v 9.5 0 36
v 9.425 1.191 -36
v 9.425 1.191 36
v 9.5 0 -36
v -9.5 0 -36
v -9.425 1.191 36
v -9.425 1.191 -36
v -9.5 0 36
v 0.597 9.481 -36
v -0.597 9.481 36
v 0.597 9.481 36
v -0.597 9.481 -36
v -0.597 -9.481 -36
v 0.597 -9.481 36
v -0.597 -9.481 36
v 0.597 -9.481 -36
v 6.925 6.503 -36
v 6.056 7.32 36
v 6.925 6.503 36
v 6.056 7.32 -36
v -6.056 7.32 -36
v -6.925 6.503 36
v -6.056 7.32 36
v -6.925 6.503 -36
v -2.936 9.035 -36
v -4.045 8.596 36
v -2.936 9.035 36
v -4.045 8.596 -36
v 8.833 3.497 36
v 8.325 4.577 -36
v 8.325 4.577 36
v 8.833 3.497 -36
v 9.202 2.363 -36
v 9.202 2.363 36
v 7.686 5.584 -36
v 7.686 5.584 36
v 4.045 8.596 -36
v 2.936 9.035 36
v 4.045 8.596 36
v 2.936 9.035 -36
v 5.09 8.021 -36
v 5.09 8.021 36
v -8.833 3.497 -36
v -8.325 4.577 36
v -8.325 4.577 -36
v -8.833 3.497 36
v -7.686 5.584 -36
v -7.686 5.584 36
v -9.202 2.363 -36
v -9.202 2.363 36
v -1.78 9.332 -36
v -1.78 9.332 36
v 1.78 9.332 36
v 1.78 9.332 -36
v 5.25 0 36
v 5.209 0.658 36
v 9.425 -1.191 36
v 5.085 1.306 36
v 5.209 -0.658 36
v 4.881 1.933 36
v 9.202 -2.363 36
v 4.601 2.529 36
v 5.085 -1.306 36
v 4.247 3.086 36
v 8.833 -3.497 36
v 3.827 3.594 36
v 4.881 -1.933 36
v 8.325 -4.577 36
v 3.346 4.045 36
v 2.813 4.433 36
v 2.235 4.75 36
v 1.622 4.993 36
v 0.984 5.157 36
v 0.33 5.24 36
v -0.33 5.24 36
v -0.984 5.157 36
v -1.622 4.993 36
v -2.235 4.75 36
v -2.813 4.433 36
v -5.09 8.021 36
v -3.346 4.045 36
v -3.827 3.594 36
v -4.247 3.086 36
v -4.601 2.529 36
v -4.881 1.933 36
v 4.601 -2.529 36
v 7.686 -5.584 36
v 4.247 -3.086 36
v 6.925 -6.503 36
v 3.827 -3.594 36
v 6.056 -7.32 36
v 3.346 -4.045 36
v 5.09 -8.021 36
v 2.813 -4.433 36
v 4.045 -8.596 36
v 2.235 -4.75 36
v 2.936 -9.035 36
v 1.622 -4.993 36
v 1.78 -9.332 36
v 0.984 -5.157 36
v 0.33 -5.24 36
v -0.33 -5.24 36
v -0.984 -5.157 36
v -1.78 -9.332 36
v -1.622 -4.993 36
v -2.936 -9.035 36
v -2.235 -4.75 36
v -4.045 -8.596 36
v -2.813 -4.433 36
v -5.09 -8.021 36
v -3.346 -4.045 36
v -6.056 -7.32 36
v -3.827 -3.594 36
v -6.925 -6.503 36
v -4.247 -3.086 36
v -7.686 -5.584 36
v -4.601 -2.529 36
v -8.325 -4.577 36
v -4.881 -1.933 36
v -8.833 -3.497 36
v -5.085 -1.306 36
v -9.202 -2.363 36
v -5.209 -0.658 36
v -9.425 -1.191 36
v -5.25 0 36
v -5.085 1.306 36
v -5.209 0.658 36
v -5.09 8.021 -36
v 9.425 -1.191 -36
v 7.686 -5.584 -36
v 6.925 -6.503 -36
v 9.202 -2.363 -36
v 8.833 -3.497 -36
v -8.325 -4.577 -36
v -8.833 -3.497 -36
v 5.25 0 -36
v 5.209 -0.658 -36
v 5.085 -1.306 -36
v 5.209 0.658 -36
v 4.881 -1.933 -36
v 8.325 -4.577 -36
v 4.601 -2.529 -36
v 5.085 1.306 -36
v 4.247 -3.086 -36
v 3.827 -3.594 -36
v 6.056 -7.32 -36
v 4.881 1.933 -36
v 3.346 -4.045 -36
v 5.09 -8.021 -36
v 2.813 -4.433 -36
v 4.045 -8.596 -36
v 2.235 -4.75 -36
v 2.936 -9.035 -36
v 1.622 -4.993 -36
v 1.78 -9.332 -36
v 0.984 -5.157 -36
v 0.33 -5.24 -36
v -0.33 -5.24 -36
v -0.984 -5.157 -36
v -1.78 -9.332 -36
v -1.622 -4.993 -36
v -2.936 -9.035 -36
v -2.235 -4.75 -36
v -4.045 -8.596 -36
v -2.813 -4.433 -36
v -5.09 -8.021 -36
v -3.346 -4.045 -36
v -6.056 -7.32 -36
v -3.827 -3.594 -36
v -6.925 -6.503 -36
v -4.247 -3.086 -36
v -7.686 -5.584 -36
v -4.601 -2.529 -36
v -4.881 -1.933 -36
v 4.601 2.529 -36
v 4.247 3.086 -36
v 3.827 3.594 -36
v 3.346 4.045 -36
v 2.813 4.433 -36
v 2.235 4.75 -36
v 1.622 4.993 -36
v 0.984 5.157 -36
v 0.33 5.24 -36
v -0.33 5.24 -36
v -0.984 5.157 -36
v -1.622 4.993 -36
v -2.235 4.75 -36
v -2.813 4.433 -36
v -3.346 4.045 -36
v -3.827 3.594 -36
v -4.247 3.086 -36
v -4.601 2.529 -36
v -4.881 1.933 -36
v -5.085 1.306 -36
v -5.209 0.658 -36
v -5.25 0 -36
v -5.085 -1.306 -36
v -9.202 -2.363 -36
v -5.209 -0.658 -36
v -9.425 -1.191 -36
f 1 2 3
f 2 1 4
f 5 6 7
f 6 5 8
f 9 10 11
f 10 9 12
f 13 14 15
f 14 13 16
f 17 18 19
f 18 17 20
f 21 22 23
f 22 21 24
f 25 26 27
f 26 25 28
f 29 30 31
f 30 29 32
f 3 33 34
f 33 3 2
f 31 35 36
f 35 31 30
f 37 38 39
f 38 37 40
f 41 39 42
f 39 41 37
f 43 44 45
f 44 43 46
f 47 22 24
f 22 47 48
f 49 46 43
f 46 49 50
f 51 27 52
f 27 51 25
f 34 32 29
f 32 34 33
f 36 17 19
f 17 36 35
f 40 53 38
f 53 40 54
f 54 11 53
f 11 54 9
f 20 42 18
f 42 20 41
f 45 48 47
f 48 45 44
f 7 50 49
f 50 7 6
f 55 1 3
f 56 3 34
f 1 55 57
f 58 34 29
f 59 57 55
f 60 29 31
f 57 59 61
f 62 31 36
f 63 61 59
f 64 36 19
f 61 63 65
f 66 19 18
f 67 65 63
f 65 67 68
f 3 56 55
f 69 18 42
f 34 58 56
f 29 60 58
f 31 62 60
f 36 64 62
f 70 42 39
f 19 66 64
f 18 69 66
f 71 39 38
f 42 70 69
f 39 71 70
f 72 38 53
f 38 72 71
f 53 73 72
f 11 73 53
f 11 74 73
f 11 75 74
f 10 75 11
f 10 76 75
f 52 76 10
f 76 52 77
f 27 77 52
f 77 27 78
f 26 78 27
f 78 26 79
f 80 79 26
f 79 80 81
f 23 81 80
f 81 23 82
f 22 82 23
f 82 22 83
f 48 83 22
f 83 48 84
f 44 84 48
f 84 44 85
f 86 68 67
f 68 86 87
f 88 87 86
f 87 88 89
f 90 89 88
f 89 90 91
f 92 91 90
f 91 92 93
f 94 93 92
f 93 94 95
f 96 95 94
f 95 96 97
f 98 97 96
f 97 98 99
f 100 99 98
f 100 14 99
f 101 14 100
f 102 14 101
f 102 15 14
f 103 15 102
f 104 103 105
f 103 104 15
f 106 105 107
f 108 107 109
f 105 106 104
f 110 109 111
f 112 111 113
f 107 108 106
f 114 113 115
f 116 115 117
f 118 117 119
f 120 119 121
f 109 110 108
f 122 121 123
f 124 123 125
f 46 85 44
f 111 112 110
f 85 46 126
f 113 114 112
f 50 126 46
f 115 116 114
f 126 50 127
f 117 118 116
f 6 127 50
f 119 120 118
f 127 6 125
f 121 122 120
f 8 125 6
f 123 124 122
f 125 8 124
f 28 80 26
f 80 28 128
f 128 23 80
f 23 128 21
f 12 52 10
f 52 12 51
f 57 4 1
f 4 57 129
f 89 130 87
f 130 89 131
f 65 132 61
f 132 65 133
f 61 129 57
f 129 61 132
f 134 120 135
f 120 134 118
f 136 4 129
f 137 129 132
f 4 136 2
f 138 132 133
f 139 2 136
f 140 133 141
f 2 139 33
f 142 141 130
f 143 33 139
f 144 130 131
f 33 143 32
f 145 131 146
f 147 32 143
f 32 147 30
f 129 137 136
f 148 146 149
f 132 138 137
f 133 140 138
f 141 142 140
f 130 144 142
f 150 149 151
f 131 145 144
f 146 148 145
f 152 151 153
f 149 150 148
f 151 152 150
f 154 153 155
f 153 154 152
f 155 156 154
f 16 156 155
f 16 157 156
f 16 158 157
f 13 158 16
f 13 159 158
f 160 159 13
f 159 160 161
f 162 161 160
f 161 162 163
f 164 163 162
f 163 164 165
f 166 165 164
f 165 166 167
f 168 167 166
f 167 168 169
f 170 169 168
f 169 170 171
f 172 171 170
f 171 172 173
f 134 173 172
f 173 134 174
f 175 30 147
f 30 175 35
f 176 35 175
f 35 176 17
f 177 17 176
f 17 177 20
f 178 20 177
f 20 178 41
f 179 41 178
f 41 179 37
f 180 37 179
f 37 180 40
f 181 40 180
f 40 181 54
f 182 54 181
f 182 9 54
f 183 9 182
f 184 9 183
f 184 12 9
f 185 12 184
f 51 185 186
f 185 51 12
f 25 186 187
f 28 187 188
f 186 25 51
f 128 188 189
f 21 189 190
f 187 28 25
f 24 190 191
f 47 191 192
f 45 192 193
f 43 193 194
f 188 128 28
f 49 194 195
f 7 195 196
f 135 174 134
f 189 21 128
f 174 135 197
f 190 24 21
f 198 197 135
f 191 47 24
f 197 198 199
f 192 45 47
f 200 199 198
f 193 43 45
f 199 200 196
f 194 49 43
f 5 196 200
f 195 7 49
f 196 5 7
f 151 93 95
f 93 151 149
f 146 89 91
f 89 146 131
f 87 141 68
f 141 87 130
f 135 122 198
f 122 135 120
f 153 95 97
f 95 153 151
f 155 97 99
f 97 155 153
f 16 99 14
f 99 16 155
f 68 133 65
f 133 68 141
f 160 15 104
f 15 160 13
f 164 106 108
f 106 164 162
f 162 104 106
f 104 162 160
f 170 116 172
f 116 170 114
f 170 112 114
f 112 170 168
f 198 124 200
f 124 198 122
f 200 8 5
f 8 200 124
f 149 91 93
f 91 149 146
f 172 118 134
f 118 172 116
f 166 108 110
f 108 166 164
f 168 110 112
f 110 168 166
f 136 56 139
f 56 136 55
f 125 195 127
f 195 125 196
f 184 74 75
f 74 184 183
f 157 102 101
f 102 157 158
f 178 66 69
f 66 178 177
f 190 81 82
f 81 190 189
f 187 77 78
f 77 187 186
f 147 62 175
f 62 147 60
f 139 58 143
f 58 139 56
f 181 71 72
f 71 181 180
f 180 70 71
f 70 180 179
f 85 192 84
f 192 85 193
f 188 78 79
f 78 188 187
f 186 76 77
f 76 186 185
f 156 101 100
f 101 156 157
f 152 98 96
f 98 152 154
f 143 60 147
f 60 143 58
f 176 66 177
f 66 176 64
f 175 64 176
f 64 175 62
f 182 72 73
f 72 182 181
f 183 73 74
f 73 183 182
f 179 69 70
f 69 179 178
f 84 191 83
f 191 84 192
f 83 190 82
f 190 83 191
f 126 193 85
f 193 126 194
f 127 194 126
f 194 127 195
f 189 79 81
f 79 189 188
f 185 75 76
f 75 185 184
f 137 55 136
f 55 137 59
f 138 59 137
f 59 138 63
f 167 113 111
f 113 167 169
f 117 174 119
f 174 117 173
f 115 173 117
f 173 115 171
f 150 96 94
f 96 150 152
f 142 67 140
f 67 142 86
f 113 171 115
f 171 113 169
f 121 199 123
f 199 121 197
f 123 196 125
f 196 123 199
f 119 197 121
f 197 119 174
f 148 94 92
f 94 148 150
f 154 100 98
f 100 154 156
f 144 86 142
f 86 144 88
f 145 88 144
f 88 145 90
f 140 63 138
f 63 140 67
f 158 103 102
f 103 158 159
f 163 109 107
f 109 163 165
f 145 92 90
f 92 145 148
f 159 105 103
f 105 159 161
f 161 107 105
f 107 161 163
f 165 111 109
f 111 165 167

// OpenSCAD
$fn = 50;


difference() {
	union() {
		translate(v = [0, 0, -36.0000000000]) {
			cylinder(h = 72, r = 9.5000000000);
		}
	}
	union() {
		translate(v = [0, 0, -100.0000000000]) {
			cylinder(h = 200, r = 5.2500000000);
		}
	}
}
